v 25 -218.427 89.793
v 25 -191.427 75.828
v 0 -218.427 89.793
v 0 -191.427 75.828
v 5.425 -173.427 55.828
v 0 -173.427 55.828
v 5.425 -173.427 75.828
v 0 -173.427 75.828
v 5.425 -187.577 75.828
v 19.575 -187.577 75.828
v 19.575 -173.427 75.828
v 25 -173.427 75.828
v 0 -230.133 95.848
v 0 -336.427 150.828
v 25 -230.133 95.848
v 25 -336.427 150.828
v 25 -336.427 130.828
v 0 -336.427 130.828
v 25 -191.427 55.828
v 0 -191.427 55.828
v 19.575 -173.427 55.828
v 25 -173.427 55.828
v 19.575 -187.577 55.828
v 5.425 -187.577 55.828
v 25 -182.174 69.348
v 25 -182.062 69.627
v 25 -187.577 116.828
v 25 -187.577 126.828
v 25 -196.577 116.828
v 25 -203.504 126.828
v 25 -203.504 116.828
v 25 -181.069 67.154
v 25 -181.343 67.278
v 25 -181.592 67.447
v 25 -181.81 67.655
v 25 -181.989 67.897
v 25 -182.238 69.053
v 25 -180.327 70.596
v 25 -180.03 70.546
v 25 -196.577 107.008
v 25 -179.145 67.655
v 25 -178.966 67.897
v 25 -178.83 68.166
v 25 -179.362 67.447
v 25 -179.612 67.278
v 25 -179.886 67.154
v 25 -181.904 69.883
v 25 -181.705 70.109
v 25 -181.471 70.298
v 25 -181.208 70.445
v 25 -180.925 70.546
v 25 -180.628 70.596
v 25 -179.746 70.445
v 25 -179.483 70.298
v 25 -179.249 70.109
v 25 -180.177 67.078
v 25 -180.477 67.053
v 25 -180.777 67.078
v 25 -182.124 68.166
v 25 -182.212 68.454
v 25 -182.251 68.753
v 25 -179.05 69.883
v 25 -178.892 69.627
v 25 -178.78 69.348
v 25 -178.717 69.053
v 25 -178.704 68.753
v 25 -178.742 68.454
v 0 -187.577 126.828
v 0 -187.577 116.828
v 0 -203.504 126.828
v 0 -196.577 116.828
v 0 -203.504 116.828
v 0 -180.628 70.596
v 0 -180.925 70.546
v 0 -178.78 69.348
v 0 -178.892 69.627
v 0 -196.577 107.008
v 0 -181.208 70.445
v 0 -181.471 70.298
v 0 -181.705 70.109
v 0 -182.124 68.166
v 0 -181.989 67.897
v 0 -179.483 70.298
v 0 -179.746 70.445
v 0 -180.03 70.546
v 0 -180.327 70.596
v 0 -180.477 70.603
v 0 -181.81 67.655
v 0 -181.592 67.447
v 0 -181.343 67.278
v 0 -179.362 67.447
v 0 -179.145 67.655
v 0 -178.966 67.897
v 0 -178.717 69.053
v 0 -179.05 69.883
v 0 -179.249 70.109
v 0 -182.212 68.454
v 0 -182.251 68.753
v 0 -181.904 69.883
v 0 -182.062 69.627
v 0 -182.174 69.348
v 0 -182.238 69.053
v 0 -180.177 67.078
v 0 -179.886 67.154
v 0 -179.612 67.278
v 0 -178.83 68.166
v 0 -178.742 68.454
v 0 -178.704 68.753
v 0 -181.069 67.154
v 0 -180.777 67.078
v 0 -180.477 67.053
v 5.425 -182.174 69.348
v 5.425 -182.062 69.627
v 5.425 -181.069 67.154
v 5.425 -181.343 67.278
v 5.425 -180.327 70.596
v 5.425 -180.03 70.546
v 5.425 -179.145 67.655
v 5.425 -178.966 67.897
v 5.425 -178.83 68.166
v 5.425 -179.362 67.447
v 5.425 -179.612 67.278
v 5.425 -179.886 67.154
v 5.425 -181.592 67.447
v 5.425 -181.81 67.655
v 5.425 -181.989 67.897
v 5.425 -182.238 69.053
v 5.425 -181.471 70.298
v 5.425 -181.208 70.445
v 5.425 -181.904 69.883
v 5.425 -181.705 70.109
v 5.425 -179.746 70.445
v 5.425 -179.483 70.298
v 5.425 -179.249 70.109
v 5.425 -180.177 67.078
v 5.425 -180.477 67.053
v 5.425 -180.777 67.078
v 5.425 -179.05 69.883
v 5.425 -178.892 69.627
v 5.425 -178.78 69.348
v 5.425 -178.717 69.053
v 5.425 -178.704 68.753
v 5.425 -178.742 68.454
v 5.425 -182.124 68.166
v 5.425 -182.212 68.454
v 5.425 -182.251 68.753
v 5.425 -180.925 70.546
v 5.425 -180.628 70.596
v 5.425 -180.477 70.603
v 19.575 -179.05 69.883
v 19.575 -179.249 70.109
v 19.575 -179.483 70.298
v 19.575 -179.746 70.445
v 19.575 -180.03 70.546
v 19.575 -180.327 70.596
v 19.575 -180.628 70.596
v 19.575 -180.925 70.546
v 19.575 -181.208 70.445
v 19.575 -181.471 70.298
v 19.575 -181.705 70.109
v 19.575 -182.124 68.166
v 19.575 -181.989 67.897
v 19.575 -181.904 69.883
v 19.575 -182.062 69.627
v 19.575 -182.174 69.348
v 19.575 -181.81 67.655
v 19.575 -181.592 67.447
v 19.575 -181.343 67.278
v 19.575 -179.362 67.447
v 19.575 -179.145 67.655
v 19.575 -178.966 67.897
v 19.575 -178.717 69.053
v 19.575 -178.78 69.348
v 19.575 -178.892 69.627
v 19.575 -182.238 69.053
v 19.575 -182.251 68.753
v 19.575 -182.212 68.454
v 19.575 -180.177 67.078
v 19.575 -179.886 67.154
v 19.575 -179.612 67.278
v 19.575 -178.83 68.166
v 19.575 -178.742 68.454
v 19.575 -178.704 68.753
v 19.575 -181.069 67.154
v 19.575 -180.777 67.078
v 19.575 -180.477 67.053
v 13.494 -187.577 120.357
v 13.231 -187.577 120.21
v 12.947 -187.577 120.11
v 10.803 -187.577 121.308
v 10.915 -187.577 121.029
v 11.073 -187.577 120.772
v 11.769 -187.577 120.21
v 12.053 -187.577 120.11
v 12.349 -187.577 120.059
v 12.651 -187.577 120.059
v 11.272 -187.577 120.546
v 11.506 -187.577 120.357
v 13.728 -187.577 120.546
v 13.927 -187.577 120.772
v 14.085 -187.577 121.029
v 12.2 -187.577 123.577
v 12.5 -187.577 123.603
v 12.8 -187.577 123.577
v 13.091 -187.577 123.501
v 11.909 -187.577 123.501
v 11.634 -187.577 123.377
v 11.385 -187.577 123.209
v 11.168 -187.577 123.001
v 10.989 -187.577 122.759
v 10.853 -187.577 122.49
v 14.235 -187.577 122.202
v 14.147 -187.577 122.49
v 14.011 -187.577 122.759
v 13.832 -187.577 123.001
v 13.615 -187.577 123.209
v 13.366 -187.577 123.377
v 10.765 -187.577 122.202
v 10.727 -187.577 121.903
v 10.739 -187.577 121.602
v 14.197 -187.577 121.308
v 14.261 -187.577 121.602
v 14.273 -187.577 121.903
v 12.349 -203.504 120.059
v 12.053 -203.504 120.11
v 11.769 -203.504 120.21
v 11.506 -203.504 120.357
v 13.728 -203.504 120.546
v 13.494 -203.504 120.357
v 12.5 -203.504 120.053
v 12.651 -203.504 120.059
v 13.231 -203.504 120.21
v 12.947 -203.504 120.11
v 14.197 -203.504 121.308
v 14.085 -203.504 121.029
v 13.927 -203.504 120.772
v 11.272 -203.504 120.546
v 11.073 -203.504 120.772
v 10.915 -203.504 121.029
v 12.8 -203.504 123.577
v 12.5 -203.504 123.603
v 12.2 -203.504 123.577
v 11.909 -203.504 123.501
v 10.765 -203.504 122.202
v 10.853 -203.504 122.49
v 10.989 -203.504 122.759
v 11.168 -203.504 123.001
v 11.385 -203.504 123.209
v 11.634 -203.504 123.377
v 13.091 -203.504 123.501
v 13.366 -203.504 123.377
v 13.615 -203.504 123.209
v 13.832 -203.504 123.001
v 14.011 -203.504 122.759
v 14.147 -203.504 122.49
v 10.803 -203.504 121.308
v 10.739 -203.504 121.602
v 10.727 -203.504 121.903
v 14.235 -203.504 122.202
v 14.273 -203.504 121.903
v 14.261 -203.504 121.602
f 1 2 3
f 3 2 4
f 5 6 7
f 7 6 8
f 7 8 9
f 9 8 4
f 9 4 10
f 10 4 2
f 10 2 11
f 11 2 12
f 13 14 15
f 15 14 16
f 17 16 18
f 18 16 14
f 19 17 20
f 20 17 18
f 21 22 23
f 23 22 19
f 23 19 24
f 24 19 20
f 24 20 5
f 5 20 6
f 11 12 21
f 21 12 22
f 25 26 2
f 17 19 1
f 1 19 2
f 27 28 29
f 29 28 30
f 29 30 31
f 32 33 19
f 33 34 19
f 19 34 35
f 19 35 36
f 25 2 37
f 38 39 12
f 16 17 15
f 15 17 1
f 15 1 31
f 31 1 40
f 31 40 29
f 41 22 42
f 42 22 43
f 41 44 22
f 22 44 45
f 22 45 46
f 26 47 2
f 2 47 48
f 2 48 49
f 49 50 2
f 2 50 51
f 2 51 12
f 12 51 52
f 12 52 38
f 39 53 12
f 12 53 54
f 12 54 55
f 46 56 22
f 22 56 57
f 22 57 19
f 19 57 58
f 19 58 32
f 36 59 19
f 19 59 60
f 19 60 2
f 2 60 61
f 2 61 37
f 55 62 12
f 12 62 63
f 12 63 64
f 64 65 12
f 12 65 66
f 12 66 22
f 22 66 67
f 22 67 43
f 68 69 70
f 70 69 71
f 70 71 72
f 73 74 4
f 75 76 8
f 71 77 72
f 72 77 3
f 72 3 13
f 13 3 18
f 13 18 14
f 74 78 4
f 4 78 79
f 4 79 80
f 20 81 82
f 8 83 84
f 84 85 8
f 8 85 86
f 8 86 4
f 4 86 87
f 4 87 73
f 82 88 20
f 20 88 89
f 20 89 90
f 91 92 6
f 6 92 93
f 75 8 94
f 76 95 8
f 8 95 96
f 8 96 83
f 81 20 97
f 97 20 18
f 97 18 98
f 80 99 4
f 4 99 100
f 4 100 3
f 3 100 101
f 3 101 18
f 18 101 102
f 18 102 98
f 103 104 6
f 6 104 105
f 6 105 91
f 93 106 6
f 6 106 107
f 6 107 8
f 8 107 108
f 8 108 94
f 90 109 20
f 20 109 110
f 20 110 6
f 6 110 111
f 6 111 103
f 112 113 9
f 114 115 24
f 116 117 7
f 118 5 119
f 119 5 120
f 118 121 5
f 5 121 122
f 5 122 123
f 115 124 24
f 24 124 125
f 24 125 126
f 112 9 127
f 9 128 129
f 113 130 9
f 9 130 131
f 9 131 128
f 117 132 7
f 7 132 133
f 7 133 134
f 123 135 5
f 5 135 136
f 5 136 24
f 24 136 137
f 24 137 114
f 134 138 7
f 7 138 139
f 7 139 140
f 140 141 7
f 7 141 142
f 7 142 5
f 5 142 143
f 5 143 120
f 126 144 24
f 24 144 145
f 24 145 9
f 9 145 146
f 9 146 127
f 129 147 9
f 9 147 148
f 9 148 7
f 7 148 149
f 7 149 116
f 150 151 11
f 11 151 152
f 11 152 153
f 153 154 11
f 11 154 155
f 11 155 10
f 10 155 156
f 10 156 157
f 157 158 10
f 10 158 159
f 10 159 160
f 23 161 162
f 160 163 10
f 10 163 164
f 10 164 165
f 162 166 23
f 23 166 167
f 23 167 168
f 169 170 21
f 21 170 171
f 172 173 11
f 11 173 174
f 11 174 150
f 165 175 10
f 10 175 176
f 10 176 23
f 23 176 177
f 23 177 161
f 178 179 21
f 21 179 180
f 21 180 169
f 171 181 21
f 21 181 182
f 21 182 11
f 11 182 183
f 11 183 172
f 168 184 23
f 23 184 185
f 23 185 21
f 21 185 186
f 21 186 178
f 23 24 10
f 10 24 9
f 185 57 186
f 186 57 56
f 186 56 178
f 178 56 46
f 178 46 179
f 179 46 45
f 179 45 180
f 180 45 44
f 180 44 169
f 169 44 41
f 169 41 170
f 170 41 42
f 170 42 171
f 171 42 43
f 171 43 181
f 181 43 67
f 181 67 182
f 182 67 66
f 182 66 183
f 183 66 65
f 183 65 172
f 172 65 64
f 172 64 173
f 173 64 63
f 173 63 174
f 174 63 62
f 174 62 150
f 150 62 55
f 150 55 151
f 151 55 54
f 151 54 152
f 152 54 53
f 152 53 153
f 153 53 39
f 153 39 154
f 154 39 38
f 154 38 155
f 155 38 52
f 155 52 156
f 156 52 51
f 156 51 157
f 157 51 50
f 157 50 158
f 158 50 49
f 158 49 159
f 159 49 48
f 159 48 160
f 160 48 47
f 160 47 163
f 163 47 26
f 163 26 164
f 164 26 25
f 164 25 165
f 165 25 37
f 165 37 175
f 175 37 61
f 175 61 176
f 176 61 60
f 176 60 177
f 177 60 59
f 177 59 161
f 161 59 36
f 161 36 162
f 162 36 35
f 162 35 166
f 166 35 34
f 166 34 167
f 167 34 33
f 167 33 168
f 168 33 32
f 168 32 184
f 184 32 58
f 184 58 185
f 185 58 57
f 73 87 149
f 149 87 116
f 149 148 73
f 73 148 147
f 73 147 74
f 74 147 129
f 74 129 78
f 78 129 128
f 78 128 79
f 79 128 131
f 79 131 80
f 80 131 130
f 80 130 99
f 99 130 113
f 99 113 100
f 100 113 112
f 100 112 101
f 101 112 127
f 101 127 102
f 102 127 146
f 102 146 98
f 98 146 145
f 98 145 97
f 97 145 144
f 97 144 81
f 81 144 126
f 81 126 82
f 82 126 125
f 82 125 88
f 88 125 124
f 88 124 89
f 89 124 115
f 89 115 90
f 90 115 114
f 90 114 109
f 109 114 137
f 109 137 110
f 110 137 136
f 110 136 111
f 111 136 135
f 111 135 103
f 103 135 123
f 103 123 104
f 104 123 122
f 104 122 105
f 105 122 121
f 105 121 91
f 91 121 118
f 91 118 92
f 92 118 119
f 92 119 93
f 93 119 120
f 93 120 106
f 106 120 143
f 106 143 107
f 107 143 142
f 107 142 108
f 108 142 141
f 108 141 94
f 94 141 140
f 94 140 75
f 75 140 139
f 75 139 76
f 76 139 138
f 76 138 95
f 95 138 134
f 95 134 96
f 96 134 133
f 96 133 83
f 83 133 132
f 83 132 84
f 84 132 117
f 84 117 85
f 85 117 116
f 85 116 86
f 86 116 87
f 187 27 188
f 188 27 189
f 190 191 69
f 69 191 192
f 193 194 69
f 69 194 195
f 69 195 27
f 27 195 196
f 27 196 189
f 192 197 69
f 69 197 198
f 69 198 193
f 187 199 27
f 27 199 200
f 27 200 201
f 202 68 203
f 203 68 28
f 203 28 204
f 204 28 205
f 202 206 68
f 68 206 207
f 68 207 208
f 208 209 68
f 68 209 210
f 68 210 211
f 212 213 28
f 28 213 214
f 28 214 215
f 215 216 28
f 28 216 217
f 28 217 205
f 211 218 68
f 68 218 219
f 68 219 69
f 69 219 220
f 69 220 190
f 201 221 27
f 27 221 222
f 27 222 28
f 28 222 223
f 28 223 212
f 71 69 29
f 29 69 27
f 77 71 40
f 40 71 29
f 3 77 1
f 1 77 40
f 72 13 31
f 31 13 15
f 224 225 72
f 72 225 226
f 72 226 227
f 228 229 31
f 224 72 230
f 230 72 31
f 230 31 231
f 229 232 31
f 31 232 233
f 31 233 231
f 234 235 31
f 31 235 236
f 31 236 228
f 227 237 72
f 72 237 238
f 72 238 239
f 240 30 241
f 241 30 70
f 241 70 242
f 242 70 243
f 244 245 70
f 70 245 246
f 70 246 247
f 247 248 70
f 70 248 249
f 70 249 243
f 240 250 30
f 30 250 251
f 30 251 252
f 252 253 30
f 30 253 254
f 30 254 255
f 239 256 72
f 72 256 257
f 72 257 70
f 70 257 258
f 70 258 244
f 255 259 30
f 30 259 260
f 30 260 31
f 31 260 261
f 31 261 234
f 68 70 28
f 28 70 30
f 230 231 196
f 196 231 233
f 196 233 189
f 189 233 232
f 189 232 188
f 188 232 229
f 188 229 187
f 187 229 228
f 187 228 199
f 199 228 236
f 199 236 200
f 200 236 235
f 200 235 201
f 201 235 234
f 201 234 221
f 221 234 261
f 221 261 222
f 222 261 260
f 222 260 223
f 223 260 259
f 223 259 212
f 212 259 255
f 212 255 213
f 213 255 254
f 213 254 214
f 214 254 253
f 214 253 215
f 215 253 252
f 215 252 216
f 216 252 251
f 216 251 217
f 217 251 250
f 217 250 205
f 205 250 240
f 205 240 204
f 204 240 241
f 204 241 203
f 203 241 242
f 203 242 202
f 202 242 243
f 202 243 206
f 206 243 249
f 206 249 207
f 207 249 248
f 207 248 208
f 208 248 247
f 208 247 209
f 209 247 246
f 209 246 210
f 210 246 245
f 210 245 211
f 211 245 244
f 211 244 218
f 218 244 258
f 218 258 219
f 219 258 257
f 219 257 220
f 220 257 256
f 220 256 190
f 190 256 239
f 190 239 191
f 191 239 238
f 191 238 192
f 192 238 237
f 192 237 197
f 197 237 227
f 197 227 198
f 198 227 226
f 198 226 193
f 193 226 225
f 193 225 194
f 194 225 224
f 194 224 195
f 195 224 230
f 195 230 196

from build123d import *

# Parameters (mm, degrees)
BOSS_EXTRUDE1_DEPTH = 25
SKETCH5_W           = 14.15
SKETCH5_H           = 14.15
CUT_EXTRUDE4_DEPTH  = 346.591241967
CUT_EXTRUDE5_REACH  = 371.537
SKETCH6_R           = 1.775
BOSS_EXTRUDE2_DEPTH = 25
SKETCH9_R           = 1.775
CUT_EXTRUDE6_DEPTH  = 15.926403812


with BuildPart() as part:
    # Sketch1 → Boss-Extrude1 (new body)
    with BuildSketch(Plane(origin=(0, 0, 0), x_dir=(0, 0, -1), z_dir=(1, 0, 0))):
        Polygon((-75.827871616, -173.427267807), (-55.827871616, -173.427267807), (-55.827871616, -191.427267807), (-130.827871616, -336.427267807), (-150.827871616, -336.427267807), (-91.827871616, -222.360601141), (-75.827871616, -191.427267807), align=None)
    extrude(amount=BOSS_EXTRUDE1_DEPTH)

    # Sketch5 → Cut-Extrude4 (cut, through all)
    with BuildSketch(Plane.XY.offset(75.827871616)):
        with Locations((12.5, -180.502267807)):
            Rectangle(SKETCH5_W, SKETCH5_H)
    extrude(amount=-CUT_EXTRUDE4_DEPTH, mode=Mode.SUBTRACT)

    # Cut-Extrude5: up to this face of the body (flat: up to its plane)
    cut_extrude5_end = Plane(part.part.faces().sort_by_distance((0, -254.927267807, 99.186767321))[0])
    # Sketch6 → Cut-Extrude5 (cut, up to the picked face)
    with BuildSketch(Plane(origin=(25, 0, 0), x_dir=(0, 0, -1), z_dir=(1, 0, 0)), mode=Mode.PRIVATE) as cut_extrude5_sk1:
        with Locations((-68.827871616, -180.477267807)):
            Circle(SKETCH6_R)
    cut_extrude5_tool1 = split(extrude(cut_extrude5_sk1.sketch, amount=-CUT_EXTRUDE5_REACH, mode=Mode.PRIVATE), bisect_by=cut_extrude5_end, keep=Keep.BOTH, mode=Mode.PRIVATE)
    add(cut_extrude5_tool1.solids().sort_by(Axis((25, -180.477268, 68.827872), (-1, 0, 0)))[0], mode=Mode.SUBTRACT)

    # Sketch8 → Boss-Extrude2 (add)
    with BuildSketch(Plane(origin=(25, 0, 0), x_dir=(0, 0, -1), z_dir=(1, 0, 0))):
        Polygon((-126.827871616, -187.577267807), (-116.827871616, -187.577267807), (-116.827871616, -196.577267807), (-107.00799507, -196.577267807), (-89.793388857, -218.427267807), (-95.84798887, -230.132827833), (-116.827871616, -203.503671619), (-126.827871616, -203.503671619), (-126.827871616, -196.577267807), align=None)
    extrude(amount=-BOSS_EXTRUDE2_DEPTH)

    # Sketch9 → Cut-Extrude6 (cut)
    with BuildSketch(Plane(origin=(0, -187.577267807, 0), x_dir=(1, 0, 0), z_dir=(0, 1, 0))):
        with Locations(Location((12.5, -121.827871616, 0), (0, 0, 270))):
            Circle(SKETCH9_R)
    extrude(amount=-CUT_EXTRUDE6_DEPTH, mode=Mode.SUBTRACT)


solid = part.part
